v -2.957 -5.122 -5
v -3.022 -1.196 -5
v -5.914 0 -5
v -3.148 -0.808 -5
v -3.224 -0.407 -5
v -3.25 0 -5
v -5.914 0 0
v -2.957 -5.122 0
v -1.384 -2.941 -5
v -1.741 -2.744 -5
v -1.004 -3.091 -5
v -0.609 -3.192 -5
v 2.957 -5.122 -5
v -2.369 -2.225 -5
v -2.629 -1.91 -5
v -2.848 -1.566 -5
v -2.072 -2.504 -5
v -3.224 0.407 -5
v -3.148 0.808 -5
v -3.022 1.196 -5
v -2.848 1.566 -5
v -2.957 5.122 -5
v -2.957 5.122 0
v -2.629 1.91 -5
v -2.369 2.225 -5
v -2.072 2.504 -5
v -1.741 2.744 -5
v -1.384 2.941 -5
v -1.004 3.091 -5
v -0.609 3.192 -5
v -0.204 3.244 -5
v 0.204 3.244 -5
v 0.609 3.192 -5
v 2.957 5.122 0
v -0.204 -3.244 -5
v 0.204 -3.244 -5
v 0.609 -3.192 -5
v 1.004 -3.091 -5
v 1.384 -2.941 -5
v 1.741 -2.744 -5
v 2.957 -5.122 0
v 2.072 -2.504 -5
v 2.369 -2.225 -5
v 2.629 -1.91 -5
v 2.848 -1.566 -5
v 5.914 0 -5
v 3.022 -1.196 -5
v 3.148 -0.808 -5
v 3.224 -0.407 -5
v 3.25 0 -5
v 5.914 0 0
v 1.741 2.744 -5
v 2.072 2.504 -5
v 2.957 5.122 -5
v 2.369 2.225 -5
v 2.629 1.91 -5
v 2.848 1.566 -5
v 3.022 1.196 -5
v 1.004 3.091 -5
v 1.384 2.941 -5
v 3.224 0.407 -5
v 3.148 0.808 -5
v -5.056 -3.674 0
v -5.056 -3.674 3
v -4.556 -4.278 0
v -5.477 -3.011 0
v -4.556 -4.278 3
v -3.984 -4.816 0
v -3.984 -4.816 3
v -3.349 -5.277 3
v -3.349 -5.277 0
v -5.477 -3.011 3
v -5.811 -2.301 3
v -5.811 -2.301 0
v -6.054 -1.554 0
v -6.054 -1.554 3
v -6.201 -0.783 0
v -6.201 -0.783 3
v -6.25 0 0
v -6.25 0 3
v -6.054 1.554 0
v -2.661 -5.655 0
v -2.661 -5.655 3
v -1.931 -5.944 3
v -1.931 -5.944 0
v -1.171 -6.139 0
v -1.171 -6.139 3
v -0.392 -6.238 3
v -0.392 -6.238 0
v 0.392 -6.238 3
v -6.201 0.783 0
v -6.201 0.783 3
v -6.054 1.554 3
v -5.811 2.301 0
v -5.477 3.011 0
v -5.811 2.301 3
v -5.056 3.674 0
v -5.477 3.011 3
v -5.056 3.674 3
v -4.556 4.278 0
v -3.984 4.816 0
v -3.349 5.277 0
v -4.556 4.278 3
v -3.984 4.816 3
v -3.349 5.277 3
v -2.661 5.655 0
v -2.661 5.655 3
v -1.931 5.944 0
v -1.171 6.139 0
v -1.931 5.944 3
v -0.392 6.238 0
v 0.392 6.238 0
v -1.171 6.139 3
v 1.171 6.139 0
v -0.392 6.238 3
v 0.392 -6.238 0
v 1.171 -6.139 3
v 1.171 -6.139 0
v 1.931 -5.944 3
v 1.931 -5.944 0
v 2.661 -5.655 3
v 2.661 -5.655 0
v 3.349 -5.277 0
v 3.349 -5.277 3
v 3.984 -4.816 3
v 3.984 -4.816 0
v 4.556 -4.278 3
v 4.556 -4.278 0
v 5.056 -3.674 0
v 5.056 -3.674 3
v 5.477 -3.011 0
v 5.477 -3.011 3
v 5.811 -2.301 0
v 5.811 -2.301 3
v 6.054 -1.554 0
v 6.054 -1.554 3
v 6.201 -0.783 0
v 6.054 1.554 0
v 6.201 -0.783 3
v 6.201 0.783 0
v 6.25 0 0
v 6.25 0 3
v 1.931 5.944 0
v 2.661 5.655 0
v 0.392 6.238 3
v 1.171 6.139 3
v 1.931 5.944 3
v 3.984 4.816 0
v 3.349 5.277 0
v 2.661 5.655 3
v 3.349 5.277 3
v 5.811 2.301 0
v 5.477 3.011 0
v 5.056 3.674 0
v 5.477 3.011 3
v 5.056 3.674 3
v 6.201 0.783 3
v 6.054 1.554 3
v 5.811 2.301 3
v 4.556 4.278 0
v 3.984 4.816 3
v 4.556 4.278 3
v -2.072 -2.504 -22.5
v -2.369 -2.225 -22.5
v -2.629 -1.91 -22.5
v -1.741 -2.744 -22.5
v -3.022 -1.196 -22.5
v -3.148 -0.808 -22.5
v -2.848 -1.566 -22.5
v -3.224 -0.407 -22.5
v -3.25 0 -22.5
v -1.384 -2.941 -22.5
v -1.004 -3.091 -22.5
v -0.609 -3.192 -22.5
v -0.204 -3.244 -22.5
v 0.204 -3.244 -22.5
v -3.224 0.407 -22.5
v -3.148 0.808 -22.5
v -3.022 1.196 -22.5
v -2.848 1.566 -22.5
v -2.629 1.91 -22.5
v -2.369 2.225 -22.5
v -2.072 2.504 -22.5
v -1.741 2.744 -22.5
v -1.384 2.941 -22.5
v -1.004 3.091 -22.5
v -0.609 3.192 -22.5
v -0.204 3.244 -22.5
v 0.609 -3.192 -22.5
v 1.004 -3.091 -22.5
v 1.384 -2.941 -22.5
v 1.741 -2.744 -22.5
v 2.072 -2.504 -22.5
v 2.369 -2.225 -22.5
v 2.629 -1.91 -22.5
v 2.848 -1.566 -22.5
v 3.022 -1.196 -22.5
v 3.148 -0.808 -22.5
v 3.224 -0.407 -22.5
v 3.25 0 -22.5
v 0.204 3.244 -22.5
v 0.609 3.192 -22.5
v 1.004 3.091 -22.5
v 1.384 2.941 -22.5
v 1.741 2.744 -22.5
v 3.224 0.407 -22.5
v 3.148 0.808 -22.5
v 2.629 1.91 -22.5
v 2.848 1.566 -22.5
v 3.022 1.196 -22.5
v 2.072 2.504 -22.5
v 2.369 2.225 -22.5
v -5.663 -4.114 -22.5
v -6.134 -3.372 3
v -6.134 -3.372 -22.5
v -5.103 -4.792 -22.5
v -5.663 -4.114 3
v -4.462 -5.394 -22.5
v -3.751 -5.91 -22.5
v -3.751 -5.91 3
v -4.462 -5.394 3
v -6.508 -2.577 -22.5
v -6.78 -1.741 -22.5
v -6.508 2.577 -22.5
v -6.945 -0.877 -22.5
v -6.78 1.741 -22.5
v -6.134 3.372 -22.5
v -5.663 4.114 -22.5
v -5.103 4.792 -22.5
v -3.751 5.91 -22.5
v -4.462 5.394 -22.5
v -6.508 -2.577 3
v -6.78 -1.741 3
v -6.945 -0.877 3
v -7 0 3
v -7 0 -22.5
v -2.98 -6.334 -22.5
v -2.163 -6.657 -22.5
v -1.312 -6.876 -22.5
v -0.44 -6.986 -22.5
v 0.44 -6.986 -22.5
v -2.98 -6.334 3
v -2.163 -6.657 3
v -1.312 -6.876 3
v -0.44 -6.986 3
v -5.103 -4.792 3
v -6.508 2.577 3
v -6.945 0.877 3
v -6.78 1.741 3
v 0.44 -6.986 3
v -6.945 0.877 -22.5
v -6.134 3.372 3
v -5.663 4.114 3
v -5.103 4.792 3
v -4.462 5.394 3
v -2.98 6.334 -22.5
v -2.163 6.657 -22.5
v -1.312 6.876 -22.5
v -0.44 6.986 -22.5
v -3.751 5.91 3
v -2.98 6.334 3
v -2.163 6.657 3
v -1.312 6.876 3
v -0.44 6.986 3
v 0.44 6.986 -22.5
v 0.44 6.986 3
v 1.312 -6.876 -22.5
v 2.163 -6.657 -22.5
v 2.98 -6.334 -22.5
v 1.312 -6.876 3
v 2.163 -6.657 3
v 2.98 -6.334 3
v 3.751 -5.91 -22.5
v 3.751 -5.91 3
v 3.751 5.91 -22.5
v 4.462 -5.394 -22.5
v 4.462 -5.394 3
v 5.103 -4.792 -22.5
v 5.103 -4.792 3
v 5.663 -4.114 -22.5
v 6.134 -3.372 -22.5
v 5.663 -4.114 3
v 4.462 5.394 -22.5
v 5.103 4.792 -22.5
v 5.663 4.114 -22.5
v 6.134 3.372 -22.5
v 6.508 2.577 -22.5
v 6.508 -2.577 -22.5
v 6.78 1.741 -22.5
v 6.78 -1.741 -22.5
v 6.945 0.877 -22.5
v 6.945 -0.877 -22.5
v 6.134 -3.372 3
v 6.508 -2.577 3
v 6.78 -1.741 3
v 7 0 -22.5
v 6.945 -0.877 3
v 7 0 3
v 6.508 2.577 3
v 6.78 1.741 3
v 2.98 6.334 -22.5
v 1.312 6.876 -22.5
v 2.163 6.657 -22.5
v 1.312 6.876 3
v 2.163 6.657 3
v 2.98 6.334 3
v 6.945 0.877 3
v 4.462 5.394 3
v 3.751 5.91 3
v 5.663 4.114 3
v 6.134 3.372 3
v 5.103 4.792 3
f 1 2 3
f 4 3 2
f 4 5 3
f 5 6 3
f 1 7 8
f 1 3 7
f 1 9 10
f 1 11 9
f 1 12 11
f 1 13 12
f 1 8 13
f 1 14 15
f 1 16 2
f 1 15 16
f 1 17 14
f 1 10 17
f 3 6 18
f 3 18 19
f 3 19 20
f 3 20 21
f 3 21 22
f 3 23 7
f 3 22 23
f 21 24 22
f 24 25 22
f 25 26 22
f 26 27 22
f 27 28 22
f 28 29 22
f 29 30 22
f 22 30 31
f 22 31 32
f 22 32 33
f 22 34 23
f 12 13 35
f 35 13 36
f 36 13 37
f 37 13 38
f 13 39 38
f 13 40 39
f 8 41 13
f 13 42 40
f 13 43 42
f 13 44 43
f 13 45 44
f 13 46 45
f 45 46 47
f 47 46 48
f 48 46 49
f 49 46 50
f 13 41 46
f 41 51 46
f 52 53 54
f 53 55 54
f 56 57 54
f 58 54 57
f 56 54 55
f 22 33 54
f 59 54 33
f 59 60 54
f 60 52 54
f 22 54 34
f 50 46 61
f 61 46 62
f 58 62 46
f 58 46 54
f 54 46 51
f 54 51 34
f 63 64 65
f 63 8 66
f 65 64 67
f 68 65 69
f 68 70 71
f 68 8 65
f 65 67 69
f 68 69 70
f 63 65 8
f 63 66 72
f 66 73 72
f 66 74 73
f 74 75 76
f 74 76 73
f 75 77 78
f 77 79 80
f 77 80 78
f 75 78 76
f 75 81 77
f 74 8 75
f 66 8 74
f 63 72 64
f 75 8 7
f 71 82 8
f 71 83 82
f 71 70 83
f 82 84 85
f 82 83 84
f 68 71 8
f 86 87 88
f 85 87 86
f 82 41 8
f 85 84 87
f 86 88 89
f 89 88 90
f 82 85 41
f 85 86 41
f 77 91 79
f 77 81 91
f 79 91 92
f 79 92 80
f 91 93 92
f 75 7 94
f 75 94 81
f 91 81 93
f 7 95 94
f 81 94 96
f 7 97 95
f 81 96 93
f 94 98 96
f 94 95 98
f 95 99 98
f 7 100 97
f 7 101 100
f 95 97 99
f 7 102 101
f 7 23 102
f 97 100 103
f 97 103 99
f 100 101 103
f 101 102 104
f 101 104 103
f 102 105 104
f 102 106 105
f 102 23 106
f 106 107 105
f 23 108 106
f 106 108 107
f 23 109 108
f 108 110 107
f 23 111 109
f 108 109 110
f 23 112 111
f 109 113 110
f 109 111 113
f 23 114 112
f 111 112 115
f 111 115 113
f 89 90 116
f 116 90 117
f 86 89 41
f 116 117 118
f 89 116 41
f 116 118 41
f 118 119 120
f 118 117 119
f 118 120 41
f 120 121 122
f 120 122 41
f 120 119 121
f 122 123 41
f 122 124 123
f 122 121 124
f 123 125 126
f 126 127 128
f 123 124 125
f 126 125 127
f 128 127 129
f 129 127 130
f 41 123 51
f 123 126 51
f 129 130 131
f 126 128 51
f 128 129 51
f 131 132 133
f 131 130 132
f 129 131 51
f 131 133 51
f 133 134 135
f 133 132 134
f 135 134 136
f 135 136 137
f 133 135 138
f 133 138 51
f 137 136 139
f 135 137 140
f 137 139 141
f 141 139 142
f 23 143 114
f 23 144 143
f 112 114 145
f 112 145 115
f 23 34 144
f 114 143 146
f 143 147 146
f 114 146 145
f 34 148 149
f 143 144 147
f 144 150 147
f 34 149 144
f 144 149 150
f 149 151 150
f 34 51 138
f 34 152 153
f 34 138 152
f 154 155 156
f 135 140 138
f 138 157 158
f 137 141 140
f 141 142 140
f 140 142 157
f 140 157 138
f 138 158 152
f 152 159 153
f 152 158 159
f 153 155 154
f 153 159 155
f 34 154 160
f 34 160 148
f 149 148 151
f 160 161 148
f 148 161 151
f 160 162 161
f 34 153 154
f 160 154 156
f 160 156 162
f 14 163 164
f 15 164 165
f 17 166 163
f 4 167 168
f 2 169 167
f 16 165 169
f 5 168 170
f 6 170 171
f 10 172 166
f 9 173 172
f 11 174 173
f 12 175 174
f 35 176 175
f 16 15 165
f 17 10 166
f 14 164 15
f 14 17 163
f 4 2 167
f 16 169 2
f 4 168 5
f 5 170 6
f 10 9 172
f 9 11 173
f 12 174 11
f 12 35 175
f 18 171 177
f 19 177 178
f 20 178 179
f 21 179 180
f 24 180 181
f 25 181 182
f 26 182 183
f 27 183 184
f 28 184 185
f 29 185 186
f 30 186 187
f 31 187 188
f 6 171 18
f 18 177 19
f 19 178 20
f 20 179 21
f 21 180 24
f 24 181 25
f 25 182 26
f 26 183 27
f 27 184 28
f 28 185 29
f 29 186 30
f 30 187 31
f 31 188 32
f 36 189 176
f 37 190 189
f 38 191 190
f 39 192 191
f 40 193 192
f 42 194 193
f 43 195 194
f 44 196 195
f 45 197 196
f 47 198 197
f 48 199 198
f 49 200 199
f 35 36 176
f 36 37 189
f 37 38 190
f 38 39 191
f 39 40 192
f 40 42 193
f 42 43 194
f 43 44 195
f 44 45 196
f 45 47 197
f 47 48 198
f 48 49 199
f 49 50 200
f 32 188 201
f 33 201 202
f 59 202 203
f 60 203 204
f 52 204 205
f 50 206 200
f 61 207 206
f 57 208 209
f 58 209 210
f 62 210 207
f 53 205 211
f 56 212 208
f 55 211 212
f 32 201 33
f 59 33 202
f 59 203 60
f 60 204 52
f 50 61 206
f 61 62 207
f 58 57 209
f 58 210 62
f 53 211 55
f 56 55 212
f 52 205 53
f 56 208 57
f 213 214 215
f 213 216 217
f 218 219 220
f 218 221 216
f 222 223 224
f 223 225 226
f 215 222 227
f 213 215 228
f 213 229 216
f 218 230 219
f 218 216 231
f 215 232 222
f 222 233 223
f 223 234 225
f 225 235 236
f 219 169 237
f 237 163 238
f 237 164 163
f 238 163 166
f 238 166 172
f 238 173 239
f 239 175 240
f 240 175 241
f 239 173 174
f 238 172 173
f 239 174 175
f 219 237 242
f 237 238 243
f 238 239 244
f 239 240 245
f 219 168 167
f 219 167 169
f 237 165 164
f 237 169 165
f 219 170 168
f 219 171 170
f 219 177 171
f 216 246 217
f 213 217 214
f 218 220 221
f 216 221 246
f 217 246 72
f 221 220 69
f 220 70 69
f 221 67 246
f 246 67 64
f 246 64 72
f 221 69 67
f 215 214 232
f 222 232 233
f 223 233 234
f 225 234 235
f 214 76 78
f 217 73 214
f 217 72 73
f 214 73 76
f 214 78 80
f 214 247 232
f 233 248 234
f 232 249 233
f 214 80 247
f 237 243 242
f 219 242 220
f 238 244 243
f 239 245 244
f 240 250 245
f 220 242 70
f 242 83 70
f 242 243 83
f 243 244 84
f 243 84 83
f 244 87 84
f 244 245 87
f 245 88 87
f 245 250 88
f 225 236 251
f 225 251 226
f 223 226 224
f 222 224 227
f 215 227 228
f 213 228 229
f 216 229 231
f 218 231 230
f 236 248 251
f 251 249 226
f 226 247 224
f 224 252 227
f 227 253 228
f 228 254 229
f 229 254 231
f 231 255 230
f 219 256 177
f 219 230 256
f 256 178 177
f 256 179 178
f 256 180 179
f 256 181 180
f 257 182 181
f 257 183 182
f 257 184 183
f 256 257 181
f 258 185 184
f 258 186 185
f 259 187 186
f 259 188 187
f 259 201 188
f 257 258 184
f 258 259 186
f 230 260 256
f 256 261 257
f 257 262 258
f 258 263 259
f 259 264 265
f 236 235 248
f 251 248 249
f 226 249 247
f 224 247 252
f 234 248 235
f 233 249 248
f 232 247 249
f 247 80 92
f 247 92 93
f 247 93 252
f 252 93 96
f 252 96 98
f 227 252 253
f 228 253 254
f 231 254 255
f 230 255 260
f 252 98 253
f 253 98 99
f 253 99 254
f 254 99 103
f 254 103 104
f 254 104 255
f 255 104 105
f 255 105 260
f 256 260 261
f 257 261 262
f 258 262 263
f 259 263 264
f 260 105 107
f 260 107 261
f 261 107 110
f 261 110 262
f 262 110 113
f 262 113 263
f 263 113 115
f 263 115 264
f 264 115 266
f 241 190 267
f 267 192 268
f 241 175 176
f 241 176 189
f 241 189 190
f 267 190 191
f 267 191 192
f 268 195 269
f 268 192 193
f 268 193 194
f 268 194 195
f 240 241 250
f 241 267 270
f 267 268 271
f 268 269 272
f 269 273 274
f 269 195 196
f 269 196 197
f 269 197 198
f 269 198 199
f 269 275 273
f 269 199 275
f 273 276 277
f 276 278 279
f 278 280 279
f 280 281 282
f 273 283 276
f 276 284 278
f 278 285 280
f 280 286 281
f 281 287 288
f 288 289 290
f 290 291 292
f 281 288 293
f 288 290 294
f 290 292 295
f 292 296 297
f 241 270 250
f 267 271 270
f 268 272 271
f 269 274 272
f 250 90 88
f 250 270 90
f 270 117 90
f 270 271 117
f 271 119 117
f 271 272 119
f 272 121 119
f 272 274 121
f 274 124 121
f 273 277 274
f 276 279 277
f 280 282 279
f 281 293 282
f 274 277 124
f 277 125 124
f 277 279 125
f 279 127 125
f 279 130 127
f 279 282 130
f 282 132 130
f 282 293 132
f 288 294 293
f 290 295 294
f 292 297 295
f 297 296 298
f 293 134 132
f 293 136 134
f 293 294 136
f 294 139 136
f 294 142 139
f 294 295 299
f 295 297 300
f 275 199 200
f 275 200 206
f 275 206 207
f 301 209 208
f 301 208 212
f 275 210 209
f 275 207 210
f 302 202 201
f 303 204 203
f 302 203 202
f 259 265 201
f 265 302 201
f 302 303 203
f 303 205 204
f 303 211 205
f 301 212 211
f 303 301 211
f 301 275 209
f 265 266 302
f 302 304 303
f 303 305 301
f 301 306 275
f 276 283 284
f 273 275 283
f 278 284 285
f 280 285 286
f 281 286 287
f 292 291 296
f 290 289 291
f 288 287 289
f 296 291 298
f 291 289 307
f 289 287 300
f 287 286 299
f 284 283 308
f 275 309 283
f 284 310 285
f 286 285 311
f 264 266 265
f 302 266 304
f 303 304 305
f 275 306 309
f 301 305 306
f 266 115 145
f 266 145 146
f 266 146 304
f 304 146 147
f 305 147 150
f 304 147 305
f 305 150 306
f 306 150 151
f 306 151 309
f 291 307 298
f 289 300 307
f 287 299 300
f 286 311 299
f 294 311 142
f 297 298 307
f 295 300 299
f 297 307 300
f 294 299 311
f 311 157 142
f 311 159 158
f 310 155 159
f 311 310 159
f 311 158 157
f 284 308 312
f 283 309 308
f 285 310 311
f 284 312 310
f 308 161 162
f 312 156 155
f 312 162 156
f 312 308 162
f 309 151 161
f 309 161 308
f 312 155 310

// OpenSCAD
$fn = 50;

difference() {
	union() {
		translate(v = [0, 0, -22.5]) {
			cylinder(h = 25.5, r = 7.0);
		}
	}
	union() {
		translate(v = [0, 0, 0]) {
			rotate(a = [0, 0, 0]) {
				difference() {
					union() {
						translate(v = [0, 0, -5]) {
							linear_extrude(height = 5) {
								polygon(points = [[5.914249999999999, 0.0], [2.957125, 5.1218907443321156], [-2.9571249999999982, 5.1218907443321156], [-5.914249999999999, 7.242867331857232e-16], [-2.9571250000000022, -5.121890744332115], [2.9571249999999956, -5.121890744332118]]);
							}
						}
					}
					union();
				}
			}
		}
		#cylinder(h = 3, r = 6.25);
		#translate(v = [0, 0, -100.0]) {
			cylinder(h = 200, r = 3.25);
		}
	}
}
